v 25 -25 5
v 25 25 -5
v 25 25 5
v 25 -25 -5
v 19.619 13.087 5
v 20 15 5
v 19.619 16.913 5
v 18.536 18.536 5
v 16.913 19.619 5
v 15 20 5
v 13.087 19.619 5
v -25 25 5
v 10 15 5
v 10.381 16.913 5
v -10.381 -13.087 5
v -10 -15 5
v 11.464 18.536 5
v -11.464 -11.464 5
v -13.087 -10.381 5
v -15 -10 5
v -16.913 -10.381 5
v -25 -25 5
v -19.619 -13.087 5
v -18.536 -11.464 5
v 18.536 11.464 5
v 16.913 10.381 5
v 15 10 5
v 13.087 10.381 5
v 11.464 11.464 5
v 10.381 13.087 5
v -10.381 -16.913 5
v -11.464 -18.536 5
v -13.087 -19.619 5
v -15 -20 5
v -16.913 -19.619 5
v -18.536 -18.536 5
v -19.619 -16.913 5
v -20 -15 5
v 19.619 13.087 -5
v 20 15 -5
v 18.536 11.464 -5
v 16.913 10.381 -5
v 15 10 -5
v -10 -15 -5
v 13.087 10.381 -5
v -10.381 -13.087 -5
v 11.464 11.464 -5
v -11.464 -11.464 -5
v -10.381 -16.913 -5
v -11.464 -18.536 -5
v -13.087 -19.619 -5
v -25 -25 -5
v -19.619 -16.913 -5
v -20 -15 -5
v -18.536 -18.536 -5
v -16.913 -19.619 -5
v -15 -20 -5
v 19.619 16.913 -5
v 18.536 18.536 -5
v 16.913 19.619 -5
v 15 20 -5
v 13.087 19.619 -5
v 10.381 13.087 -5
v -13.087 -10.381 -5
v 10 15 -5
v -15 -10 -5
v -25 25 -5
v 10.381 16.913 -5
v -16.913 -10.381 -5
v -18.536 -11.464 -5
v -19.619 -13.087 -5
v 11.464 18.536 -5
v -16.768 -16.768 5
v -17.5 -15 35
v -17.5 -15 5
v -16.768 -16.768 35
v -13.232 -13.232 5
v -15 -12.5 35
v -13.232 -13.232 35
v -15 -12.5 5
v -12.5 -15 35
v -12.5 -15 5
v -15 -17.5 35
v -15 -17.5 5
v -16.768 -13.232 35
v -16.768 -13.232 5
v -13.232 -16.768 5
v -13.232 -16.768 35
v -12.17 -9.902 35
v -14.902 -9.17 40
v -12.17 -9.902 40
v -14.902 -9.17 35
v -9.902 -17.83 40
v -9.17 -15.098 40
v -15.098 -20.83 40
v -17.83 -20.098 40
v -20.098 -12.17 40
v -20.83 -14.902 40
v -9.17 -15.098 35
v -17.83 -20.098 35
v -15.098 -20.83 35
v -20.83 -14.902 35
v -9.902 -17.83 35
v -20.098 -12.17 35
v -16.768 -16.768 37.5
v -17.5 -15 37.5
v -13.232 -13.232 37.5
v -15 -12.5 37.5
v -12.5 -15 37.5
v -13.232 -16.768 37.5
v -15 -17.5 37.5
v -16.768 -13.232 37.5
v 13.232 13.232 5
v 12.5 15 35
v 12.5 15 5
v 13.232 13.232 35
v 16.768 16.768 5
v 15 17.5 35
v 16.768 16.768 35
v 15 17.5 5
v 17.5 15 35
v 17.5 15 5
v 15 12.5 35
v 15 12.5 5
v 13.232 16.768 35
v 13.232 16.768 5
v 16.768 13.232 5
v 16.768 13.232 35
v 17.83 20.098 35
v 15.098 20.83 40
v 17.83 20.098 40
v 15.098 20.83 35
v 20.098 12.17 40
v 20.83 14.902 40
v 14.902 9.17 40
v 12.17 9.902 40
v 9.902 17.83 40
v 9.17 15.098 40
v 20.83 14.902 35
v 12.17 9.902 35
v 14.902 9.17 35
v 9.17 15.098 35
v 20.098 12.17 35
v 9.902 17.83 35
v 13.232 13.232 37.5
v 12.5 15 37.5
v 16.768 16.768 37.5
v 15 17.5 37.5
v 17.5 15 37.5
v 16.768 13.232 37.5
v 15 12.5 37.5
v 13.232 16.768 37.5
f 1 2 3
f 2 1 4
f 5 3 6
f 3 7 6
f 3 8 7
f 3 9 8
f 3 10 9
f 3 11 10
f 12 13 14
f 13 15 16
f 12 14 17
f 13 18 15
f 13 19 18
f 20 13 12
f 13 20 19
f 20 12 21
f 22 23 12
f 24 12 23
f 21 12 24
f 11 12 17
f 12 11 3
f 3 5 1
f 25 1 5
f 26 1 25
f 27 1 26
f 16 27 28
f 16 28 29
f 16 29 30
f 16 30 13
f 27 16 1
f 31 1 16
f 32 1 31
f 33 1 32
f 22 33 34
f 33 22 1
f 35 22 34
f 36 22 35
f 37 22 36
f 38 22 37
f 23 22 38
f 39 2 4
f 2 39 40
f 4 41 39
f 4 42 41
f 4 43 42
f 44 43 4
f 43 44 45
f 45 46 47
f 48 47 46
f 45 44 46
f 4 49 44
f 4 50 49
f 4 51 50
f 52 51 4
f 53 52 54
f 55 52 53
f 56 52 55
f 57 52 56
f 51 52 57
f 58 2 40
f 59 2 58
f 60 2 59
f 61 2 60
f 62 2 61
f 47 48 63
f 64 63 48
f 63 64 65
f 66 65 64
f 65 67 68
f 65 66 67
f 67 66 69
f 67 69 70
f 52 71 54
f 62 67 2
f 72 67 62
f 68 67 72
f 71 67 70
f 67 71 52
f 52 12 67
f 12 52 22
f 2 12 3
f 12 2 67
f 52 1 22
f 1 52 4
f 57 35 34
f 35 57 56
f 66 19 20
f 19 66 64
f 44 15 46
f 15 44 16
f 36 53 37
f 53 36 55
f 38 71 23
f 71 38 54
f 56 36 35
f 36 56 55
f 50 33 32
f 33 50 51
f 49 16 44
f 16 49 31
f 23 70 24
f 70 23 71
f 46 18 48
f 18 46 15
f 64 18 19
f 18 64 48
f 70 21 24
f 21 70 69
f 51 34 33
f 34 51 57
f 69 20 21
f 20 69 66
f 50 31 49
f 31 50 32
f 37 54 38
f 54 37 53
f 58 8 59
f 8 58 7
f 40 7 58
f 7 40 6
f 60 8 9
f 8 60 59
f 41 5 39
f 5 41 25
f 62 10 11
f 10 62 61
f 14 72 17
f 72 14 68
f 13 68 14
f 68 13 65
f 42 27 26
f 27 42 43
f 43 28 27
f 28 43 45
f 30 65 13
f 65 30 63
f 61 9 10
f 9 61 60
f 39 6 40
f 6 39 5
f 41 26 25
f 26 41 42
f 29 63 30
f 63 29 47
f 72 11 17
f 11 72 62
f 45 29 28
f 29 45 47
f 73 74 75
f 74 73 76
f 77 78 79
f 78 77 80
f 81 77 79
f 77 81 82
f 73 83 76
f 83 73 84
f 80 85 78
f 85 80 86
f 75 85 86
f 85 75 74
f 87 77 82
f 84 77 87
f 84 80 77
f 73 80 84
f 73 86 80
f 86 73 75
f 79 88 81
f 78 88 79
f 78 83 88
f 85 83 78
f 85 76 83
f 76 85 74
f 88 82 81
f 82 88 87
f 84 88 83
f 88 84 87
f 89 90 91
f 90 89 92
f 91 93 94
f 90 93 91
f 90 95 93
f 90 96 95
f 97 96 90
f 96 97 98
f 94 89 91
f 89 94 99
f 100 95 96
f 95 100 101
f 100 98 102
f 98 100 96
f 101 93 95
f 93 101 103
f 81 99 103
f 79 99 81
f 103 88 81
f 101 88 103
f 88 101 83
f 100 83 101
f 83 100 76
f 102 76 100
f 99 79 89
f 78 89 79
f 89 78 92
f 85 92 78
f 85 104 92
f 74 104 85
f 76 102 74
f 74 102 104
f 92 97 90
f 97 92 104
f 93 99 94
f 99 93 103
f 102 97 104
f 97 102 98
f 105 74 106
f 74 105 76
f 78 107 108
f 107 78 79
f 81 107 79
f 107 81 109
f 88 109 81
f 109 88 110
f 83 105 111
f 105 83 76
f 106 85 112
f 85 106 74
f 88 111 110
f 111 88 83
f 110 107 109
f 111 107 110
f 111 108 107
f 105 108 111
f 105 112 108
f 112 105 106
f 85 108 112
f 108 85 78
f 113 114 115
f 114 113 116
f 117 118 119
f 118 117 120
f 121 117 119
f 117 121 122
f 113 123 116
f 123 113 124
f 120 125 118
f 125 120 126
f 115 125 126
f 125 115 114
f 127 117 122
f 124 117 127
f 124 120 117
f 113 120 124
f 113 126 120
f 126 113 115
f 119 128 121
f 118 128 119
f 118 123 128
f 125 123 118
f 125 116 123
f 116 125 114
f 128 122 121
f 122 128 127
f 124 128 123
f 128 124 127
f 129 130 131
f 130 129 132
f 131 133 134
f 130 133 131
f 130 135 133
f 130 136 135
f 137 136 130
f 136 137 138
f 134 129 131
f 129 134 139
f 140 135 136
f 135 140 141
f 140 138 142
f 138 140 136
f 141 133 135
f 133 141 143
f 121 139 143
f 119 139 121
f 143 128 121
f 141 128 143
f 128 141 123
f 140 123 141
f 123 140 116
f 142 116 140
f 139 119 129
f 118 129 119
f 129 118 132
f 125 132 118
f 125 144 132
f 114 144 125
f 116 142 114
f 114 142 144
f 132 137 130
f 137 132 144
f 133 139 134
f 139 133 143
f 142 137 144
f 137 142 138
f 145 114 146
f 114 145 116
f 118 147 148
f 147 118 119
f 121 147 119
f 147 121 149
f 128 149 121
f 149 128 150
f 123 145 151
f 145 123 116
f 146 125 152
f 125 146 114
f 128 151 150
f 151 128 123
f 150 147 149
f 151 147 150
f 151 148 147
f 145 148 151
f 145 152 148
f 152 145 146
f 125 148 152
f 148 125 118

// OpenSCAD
// Base Plate
module base_plate() {
    difference() {
        // Main rectangular block
        cube([50, 50, 10], center = true);
        
        // Circular through-holes
        translate([-15, -15, 0]) cylinder(r = 5, h = 20, center = true);
        translate([15, 15, 0]) cylinder(r = 5, h = 20, center = true);
    }
}

// Bolt
module bolt() {
    union() {
        // Cylindrical rod
        cylinder(r = 2.5, h = 30, center = false);
        
        // Threading (simplified as a smaller cylinder for visualization)
        translate([0, 0, 15]) cylinder(r = 2.25, h = 15, center = false);
    }
}

// Nut
module nut() {
    difference() {
        // Hexagonal prism
        rotate([0, 0, 30]) linear_extrude(height = 5) polygon(points = [[-3, -5], [3, -5], [5, -3], [5, 3], [3, 5], [-3, 5], [-5, 3], [-5, -3]]);
        
        // Internal threaded hole
        translate([0, 0, -2.5]) cylinder(r = 2.5, h = 10, center = true);
    }
}

// Assembly
module assembly() {
    // Layer 1: Base Plate
    base_plate();
    
    // Layer 2: Bolts and Nuts
    translate([-15, -15, 5]) {
        bolt();
        translate([0, 0, 30]) nut();
    }
    translate([15, 15, 5]) {
        bolt();
        translate([0, 0, 30]) nut();
    }
}

// Render the assembly
assembly();
